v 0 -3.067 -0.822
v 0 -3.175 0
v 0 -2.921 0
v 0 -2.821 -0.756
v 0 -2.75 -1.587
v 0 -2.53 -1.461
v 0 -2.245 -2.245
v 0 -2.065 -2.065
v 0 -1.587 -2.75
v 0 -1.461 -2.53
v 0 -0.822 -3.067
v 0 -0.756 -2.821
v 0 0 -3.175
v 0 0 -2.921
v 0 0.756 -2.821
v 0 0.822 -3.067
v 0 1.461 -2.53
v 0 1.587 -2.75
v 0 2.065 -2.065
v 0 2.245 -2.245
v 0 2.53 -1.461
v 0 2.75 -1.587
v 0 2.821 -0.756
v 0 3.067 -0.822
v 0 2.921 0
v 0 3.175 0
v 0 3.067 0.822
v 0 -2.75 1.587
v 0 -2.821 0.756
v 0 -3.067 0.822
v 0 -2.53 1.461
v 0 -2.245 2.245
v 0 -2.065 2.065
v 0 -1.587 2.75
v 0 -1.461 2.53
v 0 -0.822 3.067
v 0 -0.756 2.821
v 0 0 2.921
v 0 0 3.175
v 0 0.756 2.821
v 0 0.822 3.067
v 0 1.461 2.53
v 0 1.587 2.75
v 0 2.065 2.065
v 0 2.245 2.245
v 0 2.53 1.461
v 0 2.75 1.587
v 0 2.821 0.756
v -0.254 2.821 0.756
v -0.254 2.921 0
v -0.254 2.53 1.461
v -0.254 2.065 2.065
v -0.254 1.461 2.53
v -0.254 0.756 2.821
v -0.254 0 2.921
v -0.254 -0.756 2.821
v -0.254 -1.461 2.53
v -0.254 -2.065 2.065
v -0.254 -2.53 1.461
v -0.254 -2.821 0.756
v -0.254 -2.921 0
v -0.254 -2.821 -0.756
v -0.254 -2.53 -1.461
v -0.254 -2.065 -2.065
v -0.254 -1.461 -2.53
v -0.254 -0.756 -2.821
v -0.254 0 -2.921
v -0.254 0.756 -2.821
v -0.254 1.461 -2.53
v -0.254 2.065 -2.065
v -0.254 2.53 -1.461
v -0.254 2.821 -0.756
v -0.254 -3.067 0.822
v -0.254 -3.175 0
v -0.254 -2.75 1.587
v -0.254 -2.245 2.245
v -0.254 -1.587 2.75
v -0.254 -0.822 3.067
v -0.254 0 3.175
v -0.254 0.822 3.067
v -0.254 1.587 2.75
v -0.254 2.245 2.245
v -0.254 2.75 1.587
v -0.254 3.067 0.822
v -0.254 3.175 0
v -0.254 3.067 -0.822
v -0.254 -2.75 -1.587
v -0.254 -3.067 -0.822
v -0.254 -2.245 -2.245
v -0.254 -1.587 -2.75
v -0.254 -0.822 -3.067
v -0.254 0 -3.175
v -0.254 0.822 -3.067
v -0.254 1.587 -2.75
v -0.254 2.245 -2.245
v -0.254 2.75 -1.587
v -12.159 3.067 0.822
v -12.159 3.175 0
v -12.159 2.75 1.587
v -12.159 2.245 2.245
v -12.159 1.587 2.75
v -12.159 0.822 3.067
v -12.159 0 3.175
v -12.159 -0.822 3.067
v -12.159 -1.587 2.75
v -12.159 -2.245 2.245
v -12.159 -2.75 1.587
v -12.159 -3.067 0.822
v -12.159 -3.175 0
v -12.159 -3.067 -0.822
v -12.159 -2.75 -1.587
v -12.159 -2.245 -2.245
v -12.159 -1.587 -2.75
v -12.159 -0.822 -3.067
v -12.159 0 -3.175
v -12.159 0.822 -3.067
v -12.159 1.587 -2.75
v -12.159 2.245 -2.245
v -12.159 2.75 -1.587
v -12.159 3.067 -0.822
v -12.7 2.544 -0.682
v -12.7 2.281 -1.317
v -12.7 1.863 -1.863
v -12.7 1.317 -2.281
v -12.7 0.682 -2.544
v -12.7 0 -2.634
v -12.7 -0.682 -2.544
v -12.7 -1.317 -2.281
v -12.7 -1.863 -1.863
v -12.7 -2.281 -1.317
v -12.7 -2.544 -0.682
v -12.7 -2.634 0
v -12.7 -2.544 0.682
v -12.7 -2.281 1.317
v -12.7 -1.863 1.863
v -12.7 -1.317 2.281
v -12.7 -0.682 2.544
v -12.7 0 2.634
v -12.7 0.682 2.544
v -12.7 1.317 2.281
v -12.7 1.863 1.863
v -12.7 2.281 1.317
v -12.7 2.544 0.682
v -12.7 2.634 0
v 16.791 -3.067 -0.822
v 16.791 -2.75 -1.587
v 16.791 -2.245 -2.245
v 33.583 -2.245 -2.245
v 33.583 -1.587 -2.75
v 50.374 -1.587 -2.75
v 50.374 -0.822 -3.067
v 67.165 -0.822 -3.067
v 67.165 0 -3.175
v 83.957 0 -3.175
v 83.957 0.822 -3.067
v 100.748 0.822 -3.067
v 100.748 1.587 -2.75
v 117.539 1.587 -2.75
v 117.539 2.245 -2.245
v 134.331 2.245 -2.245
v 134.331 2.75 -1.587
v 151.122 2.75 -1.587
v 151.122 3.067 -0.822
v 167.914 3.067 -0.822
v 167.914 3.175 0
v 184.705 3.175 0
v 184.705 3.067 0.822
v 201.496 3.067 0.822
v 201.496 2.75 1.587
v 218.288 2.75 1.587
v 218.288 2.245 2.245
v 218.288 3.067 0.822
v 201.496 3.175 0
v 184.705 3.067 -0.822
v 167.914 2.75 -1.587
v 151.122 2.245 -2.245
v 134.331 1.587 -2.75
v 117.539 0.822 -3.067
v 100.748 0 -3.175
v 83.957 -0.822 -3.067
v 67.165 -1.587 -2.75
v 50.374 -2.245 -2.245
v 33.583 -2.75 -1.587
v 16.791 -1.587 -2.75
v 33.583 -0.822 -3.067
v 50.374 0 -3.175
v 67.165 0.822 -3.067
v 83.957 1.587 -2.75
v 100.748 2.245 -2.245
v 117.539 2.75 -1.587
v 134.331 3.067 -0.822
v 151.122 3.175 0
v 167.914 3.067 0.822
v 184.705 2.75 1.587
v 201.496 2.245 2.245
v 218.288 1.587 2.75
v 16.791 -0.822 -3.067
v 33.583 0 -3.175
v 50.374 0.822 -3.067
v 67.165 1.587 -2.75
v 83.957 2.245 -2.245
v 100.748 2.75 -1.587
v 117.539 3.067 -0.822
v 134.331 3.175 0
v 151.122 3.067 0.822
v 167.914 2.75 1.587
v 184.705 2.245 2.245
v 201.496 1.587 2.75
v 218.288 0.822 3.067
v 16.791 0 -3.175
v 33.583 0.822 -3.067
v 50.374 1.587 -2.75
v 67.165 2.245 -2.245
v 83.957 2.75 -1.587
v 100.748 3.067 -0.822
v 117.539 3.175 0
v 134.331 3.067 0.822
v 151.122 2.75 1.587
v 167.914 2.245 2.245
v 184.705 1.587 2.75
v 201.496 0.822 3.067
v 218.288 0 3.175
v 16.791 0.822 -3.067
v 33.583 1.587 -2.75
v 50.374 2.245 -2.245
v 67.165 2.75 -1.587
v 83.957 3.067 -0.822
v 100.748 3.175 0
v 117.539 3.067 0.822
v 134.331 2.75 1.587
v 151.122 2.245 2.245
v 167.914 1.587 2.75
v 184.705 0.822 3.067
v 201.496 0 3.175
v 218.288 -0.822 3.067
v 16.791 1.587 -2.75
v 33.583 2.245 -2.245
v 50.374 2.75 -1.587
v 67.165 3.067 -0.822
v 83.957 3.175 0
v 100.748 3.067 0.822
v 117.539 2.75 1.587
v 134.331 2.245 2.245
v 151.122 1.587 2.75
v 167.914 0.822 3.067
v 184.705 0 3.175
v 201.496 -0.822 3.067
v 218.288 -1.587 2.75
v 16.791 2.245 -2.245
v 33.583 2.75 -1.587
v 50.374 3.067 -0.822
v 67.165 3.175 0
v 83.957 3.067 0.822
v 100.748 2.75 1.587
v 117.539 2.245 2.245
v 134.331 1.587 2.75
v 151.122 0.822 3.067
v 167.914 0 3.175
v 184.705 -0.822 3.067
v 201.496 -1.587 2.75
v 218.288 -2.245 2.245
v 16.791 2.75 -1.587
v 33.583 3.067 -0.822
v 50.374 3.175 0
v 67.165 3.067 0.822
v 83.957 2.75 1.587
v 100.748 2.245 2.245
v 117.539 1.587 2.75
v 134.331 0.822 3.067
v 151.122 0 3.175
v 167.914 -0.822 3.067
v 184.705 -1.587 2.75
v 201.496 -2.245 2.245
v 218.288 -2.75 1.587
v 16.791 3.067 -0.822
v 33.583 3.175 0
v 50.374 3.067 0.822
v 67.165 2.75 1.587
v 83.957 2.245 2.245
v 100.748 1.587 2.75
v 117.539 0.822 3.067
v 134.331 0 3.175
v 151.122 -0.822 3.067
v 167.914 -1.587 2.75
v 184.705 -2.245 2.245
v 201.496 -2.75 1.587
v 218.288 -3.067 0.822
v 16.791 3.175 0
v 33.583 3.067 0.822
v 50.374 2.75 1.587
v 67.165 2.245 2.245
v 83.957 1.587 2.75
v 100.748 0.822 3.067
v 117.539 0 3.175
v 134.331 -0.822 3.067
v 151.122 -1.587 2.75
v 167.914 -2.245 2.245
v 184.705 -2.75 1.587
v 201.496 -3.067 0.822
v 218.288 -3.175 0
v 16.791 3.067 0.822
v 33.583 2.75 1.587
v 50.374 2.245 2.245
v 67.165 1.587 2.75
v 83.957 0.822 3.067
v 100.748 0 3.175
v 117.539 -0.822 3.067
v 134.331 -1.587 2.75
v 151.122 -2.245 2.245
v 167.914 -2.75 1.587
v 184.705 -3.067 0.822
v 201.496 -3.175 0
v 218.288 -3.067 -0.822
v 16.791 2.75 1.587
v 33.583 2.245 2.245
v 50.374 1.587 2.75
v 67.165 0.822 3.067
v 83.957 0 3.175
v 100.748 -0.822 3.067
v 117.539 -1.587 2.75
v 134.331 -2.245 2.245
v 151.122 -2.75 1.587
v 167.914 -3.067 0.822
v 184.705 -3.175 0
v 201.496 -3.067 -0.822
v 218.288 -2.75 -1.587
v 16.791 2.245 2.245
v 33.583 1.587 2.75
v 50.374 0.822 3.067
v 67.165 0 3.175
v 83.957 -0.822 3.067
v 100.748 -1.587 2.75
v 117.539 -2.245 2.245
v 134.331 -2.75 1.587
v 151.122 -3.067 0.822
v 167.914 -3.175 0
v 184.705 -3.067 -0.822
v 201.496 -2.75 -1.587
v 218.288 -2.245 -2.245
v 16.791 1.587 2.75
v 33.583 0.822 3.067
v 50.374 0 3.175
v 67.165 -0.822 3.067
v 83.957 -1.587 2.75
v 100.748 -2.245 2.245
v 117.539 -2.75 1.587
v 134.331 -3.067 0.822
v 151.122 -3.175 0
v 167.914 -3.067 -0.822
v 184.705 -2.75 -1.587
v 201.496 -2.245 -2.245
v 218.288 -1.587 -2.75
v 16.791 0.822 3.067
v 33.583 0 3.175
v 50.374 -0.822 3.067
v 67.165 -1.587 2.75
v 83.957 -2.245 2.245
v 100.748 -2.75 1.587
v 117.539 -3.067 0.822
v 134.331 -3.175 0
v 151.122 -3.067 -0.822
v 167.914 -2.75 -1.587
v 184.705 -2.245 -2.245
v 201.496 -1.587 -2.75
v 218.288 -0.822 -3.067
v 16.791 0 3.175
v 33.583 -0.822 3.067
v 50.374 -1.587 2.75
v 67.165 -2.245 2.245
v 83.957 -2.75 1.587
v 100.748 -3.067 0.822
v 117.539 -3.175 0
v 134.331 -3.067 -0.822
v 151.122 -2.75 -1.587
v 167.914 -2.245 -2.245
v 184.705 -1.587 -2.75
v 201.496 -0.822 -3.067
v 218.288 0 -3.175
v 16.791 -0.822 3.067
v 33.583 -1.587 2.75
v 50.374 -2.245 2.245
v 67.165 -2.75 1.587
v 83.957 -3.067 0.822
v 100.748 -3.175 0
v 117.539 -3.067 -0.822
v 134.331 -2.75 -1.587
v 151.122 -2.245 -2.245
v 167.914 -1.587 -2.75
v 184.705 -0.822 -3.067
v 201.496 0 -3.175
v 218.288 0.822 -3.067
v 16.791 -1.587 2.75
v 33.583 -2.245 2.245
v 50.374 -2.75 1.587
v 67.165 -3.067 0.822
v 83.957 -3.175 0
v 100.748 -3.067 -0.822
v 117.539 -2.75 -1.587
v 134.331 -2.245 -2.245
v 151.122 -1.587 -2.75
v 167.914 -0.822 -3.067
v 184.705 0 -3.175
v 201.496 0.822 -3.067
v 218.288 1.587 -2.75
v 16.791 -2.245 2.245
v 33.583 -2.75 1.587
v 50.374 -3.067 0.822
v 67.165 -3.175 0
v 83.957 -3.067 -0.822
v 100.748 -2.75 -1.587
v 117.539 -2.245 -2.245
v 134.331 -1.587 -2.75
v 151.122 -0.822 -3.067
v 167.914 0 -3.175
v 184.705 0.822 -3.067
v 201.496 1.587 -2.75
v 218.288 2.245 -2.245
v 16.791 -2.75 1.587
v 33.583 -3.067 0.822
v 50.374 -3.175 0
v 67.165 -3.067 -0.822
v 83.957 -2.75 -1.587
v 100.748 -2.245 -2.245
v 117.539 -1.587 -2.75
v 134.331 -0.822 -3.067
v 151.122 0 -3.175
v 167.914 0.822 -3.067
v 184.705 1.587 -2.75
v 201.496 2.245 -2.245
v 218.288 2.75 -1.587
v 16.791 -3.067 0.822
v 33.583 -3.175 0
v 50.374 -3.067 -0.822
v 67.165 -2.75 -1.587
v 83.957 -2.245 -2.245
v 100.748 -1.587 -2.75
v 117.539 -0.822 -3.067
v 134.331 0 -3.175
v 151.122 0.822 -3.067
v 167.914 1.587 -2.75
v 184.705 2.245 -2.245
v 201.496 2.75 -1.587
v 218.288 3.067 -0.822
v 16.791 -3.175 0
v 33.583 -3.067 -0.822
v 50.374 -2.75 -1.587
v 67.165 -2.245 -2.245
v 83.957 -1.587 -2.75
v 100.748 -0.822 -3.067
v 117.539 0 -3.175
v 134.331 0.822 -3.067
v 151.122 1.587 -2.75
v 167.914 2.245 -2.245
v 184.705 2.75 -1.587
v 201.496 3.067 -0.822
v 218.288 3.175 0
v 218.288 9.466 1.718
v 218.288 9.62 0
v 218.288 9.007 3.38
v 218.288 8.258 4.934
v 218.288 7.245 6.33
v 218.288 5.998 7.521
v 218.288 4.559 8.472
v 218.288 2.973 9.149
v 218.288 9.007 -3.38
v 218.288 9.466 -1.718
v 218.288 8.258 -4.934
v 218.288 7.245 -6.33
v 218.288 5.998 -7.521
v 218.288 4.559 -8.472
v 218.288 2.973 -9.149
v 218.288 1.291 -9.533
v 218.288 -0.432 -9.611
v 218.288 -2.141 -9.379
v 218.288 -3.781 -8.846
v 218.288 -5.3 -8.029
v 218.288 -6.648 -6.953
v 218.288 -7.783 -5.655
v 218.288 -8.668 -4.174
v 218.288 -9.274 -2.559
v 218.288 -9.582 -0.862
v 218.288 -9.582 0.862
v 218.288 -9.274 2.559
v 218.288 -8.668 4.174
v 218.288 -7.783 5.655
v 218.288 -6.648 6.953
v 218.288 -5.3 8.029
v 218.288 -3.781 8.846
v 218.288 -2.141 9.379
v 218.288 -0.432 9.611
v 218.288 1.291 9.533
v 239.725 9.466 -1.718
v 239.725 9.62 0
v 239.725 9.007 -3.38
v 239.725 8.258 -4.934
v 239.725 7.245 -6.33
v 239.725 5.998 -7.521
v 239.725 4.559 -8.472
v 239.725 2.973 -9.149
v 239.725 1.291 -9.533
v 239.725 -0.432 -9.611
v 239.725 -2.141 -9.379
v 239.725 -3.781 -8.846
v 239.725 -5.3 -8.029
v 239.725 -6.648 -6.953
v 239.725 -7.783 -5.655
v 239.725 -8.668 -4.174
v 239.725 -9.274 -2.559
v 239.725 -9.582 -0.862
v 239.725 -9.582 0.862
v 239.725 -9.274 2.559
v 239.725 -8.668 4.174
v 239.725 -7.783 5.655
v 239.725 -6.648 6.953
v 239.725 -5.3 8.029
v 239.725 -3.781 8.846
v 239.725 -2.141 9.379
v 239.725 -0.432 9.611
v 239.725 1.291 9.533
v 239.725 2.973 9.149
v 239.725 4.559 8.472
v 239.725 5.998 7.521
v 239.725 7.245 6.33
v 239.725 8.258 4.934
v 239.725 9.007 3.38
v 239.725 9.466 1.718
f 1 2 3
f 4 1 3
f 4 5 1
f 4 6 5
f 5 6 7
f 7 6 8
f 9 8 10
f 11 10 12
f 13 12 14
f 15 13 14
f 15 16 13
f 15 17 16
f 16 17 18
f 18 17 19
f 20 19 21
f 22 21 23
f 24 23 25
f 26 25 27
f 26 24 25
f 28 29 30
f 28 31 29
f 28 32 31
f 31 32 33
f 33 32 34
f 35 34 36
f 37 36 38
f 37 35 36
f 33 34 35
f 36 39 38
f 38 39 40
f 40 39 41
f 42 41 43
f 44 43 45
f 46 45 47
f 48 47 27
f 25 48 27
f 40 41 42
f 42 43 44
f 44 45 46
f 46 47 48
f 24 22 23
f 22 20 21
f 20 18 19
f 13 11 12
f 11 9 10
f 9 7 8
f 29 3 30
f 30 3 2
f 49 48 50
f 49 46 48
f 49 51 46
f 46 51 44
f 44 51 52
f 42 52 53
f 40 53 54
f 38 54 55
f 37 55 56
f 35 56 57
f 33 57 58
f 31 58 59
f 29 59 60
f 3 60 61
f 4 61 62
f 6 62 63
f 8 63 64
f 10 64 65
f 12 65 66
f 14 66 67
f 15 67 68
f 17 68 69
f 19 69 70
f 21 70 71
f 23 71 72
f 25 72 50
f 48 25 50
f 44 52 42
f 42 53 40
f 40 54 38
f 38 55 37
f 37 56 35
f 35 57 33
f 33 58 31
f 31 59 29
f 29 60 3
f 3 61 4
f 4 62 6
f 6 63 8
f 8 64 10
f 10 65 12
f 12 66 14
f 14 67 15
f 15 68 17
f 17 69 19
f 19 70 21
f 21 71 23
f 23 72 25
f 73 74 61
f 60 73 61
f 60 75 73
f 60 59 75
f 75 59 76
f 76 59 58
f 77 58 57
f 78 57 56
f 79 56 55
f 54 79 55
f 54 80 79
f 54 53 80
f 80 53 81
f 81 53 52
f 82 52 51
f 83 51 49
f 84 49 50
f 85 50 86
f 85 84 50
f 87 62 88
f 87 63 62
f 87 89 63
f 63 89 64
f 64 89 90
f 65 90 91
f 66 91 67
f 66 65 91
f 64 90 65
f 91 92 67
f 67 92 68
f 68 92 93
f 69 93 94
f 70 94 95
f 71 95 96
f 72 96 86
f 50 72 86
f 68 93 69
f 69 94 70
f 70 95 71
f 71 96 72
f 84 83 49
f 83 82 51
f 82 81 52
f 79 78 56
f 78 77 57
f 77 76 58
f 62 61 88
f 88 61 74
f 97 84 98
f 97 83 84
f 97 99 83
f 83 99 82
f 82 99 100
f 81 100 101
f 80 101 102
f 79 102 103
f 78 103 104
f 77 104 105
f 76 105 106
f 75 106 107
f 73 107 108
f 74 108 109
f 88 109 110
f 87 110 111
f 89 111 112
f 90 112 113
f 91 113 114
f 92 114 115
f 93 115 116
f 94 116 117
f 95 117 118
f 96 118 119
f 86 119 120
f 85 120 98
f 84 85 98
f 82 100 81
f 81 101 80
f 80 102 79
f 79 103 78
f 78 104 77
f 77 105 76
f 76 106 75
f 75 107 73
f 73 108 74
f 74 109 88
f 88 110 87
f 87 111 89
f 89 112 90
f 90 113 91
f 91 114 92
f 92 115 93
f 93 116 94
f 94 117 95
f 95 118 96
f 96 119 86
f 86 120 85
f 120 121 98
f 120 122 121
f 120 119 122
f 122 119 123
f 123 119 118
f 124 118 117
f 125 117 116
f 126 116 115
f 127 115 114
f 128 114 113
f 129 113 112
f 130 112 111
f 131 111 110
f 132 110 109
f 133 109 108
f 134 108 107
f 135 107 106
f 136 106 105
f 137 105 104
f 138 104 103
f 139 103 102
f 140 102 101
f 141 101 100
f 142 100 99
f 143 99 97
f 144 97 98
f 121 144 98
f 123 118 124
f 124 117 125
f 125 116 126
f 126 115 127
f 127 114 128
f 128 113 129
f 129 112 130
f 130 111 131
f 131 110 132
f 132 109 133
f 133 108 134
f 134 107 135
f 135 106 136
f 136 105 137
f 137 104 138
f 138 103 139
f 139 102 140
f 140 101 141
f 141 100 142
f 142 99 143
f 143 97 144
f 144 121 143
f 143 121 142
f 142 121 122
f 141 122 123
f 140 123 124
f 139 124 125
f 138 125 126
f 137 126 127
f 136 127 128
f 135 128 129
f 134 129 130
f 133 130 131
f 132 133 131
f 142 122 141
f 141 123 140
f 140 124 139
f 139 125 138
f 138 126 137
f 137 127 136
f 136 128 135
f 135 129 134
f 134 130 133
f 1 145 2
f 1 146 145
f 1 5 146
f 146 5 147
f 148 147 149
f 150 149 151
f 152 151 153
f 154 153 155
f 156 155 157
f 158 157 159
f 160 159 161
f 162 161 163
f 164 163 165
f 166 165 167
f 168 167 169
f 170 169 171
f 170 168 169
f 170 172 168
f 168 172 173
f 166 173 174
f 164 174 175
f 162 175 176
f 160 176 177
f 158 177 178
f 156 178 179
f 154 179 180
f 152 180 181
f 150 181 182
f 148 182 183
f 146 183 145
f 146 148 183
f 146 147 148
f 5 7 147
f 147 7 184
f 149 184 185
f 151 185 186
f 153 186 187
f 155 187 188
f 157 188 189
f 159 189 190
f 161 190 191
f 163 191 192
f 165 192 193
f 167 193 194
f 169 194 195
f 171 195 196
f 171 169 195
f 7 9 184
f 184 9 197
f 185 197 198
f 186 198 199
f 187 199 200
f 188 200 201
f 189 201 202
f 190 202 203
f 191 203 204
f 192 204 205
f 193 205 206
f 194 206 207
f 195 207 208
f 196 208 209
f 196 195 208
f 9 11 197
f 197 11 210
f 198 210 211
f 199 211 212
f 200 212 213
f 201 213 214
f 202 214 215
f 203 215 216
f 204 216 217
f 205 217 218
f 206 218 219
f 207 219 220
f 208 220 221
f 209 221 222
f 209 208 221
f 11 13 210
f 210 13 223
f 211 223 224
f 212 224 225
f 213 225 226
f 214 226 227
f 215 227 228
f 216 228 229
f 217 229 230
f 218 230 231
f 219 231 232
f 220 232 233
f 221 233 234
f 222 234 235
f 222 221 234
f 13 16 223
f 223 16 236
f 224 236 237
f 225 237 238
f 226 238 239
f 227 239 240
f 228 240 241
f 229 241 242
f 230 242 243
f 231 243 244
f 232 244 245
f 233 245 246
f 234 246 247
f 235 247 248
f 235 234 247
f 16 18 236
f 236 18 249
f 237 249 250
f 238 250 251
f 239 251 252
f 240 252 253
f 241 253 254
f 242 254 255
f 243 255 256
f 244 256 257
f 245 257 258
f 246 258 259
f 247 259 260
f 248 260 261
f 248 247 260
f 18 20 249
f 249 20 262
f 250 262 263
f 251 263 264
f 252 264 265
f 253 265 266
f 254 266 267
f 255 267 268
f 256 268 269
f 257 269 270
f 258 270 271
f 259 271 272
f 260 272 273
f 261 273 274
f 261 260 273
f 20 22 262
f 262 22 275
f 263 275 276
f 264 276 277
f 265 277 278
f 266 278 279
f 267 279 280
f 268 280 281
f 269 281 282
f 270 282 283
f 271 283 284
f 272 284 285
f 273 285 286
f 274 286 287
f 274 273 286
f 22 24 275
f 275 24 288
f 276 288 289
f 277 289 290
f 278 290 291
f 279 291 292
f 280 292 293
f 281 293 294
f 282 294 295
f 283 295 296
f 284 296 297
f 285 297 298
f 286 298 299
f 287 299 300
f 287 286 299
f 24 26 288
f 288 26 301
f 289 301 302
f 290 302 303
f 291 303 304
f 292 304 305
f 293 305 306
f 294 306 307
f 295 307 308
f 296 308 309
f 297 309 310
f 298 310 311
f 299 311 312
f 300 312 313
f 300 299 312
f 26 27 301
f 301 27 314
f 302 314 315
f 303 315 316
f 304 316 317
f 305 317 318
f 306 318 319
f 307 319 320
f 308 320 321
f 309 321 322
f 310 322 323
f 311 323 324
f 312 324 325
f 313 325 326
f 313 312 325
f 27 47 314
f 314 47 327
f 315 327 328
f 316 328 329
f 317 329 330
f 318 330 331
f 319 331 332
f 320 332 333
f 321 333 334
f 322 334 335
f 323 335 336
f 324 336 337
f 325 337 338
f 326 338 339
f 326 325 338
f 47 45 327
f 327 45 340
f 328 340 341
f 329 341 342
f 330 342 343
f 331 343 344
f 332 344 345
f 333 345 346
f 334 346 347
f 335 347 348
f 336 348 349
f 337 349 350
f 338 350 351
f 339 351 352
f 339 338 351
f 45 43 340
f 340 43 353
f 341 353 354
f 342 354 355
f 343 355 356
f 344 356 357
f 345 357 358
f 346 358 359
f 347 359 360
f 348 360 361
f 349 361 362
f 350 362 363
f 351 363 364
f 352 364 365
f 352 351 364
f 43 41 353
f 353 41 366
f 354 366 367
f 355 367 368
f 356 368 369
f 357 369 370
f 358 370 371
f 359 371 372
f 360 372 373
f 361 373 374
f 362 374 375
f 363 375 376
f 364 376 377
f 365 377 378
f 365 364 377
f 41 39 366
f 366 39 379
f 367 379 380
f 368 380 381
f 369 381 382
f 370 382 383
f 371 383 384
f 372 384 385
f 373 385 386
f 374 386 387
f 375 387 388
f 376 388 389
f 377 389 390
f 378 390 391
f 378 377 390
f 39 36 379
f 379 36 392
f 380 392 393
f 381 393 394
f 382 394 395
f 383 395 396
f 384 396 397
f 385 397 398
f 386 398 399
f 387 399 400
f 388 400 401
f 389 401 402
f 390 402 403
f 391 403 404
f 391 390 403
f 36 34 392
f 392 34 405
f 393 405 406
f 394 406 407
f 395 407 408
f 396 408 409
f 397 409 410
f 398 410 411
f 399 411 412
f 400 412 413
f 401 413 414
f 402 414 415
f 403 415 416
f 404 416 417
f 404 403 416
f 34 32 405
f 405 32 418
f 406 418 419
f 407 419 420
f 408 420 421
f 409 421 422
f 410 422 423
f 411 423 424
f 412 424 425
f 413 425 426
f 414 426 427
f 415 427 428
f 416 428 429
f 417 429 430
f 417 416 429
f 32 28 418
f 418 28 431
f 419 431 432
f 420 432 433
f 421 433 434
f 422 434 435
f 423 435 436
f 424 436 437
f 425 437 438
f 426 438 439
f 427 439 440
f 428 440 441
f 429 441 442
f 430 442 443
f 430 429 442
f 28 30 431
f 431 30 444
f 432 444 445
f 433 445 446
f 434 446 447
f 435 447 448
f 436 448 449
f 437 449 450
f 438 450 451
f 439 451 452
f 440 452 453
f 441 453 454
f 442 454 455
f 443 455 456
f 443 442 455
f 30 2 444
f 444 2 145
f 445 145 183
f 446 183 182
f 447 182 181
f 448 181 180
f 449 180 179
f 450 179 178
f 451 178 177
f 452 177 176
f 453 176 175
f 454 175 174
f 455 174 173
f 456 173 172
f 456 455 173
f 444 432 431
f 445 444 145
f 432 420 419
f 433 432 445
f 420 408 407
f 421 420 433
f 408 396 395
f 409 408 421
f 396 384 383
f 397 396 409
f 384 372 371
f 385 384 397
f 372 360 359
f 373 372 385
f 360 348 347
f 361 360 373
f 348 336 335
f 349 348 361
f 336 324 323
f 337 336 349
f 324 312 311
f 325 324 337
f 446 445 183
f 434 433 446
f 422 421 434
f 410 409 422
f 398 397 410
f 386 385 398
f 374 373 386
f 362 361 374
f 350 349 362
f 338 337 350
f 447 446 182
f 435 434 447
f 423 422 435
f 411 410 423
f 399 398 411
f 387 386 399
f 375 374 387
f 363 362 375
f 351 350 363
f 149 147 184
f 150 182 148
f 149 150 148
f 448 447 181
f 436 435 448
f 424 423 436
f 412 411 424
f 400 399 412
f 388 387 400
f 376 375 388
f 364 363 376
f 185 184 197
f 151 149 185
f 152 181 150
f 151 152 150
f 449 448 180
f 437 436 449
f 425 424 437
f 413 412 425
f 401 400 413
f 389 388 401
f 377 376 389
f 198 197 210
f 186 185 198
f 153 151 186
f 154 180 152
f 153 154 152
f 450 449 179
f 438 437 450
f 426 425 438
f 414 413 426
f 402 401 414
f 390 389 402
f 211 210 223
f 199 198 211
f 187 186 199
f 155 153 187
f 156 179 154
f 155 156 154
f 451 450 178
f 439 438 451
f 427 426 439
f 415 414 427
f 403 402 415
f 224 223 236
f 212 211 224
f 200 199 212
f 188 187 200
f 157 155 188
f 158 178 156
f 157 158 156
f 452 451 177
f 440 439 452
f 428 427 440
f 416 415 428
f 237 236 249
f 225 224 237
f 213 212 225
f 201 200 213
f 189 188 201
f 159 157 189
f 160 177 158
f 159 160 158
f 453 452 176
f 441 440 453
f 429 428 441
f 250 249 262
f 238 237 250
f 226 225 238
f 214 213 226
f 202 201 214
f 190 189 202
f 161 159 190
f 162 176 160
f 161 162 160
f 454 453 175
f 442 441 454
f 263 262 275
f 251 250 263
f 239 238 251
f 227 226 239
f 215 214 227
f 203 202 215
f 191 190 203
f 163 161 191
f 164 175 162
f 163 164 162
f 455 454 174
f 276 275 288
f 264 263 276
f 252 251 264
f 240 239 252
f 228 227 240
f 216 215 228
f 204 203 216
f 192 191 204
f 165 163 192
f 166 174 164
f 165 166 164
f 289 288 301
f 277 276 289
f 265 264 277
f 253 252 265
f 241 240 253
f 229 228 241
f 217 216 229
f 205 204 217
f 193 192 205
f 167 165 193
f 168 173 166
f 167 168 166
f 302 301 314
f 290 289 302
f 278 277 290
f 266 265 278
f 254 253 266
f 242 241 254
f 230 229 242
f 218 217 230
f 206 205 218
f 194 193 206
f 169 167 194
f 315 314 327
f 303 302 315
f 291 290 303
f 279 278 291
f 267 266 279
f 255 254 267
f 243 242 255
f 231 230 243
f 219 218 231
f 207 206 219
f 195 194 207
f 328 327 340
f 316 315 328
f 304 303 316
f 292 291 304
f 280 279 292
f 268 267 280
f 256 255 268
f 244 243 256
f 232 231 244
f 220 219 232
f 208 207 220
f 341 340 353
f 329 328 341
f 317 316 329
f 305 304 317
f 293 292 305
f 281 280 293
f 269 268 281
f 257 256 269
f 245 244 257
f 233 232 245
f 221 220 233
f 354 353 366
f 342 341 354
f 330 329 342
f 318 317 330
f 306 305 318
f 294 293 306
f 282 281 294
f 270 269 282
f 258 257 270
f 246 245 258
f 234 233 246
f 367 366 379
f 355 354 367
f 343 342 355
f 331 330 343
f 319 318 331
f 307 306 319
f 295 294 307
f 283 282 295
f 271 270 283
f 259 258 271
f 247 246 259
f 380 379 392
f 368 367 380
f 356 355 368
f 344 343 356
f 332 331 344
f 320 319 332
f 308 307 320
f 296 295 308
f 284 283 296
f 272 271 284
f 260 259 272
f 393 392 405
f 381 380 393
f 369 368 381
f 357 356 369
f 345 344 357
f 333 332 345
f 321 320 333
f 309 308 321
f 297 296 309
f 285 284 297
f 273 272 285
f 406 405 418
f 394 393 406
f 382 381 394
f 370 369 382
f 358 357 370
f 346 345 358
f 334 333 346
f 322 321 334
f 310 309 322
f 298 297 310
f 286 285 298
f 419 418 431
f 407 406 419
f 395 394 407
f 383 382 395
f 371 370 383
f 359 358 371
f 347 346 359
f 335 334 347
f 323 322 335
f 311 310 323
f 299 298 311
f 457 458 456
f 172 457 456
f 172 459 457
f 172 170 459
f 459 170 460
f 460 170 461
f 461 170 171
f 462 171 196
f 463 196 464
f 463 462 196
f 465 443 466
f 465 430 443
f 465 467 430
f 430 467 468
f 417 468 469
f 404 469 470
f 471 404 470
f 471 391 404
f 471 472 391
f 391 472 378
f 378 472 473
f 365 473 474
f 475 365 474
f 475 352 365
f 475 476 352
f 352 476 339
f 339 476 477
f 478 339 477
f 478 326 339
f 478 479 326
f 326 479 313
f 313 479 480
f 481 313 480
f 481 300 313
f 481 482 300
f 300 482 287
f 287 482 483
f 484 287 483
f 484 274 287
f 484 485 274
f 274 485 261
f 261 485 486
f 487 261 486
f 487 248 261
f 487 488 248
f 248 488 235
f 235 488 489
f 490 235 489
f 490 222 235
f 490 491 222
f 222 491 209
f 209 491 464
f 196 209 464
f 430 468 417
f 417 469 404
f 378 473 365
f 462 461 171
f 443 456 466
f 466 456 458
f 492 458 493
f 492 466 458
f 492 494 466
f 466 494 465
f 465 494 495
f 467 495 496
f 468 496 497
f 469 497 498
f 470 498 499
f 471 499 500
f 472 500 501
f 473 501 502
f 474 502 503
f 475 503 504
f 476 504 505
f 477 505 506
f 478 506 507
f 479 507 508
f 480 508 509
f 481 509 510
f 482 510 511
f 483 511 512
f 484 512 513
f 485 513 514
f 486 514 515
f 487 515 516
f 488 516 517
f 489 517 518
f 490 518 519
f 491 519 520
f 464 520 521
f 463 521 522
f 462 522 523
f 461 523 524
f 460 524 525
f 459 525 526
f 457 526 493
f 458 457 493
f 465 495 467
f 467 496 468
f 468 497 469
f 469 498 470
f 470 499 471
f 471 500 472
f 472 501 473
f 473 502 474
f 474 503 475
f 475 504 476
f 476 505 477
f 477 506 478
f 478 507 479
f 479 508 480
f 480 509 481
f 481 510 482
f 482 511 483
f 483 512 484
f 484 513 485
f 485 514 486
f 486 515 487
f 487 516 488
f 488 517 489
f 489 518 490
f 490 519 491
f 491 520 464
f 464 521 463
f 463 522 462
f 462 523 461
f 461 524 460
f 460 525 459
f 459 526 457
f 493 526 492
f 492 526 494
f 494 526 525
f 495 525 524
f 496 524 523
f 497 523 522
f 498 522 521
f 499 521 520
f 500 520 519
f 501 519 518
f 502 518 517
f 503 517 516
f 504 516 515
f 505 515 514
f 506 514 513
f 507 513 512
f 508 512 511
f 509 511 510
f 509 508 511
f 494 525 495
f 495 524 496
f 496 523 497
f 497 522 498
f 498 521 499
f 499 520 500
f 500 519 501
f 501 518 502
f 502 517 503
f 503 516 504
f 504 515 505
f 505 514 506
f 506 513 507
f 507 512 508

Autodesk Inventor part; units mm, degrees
sketch "Sketch_1" plane through (0, 0, 0) normal (0, 0, 1) x (1, 0, 0)
  line L0 (239.7252, 0) -> (0, 0)
  line L1 (0, 0) -> (0, 3.175)
  line L2 (0, 3.175) -> (218.2876, 3.175)
  line L3 (218.2876, 3.175) -> (218.2876, 9.6203)
  line L4 (218.2876, 9.6203) -> (239.7252, 9.6203)
  line L5 (239.7252, 9.6203) -> (239.7252, 0)
  line L6 (239.7252, 0) -> (0, 0)
revolve "Revolution1" add sketch "Sketch_1" angle 360 about axis through (239.7252, 0, 0) along (1, 0, 0)
sketch "Sketch_3" plane through (0, 0, 0) normal (0, 0, 1) x (1, 0, 0)
  line L0 (0, 0) -> (-12.7, 0)
  line L1 (-12.7, 0) -> (-12.7, 2.634)
  line L2 (-12.7, 2.634) -> (-12.159, 3.175)
  line L3 (-12.159, 3.175) -> (0, 3.175)
  line L4 (0, 3.175) -> (0, 0)
  line L5 (0, 0) -> (-12.7, 0)
revolve "Revolution2" add sketch "Sketch_3" angle 360 about axis through (0, 0, 0) along (1, 0, 0)
thread "Thread1" size "1/4-28 UNF" class "3A" standard "ANSI Unified Screw Threads" length 12.7 offset 218.2876
sketch "Sketch_30" plane through (0, 0, 0) normal (0, 0, 1) x (1, 0, 0)
  line L0 (0, 0) -> (-0.254, 0)
  line L1 (-0.254, 3.429) -> (-0.254, 2.921)
  line L2 (-0.254, 2.921) -> (0, 2.921)
  line L3 (0, 2.921) -> (0, 3.429)
  line L4 (0, 3.429) -> (-0.254, 3.429)
revolve "Revolution3" cut sketch "Sketch_30" angle 360 about axis through (0, 0, 0) along (1, 0, 0)
ref_plane "rod_cp_XY" through (0, 0, 0) normal (1, 0, 0) x (0, 0, -1)
ref_plane "rod_cp_YZ" through (0, 0, 0) normal (0, 0, -1) x (0, 1, 0)
ref_plane "rod_cp_ZX" through (0, 0, 0) normal (0, 1, 0) x (1, 0, 0)
ref_plane "to_rod_clevis_XY" through (-12.7, 0, 0) normal (1, 0, 0) x (0, 0, -1)
ref_plane "to_rod_clevis_YZ" through (-12.7, 0, 0) normal (0, 0, -1) x (0, 1, 0)
ref_plane "to_rod_clevis_ZX" through (-12.7, 0, 0) normal (0, 1, 0) x (1, 0, 0)
ref_plane "rl2_XY" through (0, 0, 0) normal (1, 0, 0) x (0, 0, -1)
ref_plane "rl2_YZ" through (0, 0, 0) normal (0, 0, -1) x (0, 1, 0)
ref_plane "rl2_ZX" through (0, 0, 0) normal (0, 1, 0) x (1, 0, 0)
ref_plane "rl1_XY" through (-12.7, 0, 0) normal (1, 0, 0) x (0, 0, -1)
ref_plane "rl1_YZ" through (-12.7, 0, 0) normal (0, 0, -1) x (0, 1, 0)
ref_plane "rl1_ZX" through (-12.7, 0, 0) normal (0, 1, 0) x (1, 0, 0)
ref_plane "thd1_XY" through (-12.7, 3.175, 0) normal (1, 0, 0) x (0, 0, -1)
ref_plane "thd1_YZ" through (-12.7, 3.175, 0) normal (0, 0, -1) x (0, 1, 0)
ref_plane "thd1_ZX" through (-12.7, 3.175, 0) normal (0, 1, 0) x (1, 0, 0)
ref_plane "thd2_XY" through (-12.7, -3.175, 0) normal (1, 0, 0) x (0, 0, -1)
ref_plane "thd2_YZ" through (-12.7, -3.175, 0) normal (0, 0, -1) x (0, 1, 0)
ref_plane "thd2_ZX" through (-12.7, -3.175, 0) normal (0, 1, 0) x (1, 0, 0)
ref_plane "dia1_XY" through (0, 3.175, 0) normal (1, 0, 0) x (0, 0, -1)
ref_plane "dia1_YZ" through (0, 3.175, 0) normal (0, 0, -1) x (0, 1, 0)
ref_plane "dia1_ZX" through (0, 3.175, 0) normal (0, 1, 0) x (1, 0, 0)
ref_plane "dia2_XY" through (0, -3.175, 0) normal (1, 0, 0) x (0, 0, -1)
ref_plane "dia2_YZ" through (0, -3.175, 0) normal (0, 0, -1) x (0, 1, 0)
ref_plane "dia2_ZX" through (0, -3.175, 0) normal (0, 1, 0) x (1, 0, 0)
ref_plane "hh1_XY" through (269.8496, 0, 0) normal (0, 0, 1) x (1, 0, 0)
ref_plane "hh1_YZ" through (269.8496, 0, 0) normal (1, 0, 0) x (0, 1, 0)
ref_plane "hh1_ZX" through (269.8496, 0, 0) normal (0, 1, 0) x (0, 0, 1)
ref_plane "hh2_XY" through (276.2504, 0, 0) normal (0, 0, 1) x (1, 0, 0)
ref_plane "hh2_YZ" through (276.2504, 0, 0) normal (1, 0, 0) x (0, 1, 0)
ref_plane "hh2_ZX" through (276.2504, 0, 0) normal (0, 1, 0) x (0, 0, 1)
ref_plane "dia12_XY" through (0, 0, 10.9537) normal (1, 0, 0) x (0, 0, -1)
ref_plane "dia12_YZ" through (0, 0, 10.9537) normal (0, 0, -1) x (0, 1, 0)
ref_plane "dia12_ZX" through (0, 0, 10.9537) normal (0, 1, 0) x (1, 0, 0)
ref_plane "dia22_XY" through (0, 0, -10.9537) normal (1, 0, 0) x (0, 0, -1)
ref_plane "dia22_YZ" through (0, 0, -10.9537) normal (0, 0, -1) x (0, 1, 0)
ref_plane "dia22_ZX" through (0, 0, -10.9537) normal (0, 1, 0) x (1, 0, 0)
properties part number "047-DXP0_rod"
